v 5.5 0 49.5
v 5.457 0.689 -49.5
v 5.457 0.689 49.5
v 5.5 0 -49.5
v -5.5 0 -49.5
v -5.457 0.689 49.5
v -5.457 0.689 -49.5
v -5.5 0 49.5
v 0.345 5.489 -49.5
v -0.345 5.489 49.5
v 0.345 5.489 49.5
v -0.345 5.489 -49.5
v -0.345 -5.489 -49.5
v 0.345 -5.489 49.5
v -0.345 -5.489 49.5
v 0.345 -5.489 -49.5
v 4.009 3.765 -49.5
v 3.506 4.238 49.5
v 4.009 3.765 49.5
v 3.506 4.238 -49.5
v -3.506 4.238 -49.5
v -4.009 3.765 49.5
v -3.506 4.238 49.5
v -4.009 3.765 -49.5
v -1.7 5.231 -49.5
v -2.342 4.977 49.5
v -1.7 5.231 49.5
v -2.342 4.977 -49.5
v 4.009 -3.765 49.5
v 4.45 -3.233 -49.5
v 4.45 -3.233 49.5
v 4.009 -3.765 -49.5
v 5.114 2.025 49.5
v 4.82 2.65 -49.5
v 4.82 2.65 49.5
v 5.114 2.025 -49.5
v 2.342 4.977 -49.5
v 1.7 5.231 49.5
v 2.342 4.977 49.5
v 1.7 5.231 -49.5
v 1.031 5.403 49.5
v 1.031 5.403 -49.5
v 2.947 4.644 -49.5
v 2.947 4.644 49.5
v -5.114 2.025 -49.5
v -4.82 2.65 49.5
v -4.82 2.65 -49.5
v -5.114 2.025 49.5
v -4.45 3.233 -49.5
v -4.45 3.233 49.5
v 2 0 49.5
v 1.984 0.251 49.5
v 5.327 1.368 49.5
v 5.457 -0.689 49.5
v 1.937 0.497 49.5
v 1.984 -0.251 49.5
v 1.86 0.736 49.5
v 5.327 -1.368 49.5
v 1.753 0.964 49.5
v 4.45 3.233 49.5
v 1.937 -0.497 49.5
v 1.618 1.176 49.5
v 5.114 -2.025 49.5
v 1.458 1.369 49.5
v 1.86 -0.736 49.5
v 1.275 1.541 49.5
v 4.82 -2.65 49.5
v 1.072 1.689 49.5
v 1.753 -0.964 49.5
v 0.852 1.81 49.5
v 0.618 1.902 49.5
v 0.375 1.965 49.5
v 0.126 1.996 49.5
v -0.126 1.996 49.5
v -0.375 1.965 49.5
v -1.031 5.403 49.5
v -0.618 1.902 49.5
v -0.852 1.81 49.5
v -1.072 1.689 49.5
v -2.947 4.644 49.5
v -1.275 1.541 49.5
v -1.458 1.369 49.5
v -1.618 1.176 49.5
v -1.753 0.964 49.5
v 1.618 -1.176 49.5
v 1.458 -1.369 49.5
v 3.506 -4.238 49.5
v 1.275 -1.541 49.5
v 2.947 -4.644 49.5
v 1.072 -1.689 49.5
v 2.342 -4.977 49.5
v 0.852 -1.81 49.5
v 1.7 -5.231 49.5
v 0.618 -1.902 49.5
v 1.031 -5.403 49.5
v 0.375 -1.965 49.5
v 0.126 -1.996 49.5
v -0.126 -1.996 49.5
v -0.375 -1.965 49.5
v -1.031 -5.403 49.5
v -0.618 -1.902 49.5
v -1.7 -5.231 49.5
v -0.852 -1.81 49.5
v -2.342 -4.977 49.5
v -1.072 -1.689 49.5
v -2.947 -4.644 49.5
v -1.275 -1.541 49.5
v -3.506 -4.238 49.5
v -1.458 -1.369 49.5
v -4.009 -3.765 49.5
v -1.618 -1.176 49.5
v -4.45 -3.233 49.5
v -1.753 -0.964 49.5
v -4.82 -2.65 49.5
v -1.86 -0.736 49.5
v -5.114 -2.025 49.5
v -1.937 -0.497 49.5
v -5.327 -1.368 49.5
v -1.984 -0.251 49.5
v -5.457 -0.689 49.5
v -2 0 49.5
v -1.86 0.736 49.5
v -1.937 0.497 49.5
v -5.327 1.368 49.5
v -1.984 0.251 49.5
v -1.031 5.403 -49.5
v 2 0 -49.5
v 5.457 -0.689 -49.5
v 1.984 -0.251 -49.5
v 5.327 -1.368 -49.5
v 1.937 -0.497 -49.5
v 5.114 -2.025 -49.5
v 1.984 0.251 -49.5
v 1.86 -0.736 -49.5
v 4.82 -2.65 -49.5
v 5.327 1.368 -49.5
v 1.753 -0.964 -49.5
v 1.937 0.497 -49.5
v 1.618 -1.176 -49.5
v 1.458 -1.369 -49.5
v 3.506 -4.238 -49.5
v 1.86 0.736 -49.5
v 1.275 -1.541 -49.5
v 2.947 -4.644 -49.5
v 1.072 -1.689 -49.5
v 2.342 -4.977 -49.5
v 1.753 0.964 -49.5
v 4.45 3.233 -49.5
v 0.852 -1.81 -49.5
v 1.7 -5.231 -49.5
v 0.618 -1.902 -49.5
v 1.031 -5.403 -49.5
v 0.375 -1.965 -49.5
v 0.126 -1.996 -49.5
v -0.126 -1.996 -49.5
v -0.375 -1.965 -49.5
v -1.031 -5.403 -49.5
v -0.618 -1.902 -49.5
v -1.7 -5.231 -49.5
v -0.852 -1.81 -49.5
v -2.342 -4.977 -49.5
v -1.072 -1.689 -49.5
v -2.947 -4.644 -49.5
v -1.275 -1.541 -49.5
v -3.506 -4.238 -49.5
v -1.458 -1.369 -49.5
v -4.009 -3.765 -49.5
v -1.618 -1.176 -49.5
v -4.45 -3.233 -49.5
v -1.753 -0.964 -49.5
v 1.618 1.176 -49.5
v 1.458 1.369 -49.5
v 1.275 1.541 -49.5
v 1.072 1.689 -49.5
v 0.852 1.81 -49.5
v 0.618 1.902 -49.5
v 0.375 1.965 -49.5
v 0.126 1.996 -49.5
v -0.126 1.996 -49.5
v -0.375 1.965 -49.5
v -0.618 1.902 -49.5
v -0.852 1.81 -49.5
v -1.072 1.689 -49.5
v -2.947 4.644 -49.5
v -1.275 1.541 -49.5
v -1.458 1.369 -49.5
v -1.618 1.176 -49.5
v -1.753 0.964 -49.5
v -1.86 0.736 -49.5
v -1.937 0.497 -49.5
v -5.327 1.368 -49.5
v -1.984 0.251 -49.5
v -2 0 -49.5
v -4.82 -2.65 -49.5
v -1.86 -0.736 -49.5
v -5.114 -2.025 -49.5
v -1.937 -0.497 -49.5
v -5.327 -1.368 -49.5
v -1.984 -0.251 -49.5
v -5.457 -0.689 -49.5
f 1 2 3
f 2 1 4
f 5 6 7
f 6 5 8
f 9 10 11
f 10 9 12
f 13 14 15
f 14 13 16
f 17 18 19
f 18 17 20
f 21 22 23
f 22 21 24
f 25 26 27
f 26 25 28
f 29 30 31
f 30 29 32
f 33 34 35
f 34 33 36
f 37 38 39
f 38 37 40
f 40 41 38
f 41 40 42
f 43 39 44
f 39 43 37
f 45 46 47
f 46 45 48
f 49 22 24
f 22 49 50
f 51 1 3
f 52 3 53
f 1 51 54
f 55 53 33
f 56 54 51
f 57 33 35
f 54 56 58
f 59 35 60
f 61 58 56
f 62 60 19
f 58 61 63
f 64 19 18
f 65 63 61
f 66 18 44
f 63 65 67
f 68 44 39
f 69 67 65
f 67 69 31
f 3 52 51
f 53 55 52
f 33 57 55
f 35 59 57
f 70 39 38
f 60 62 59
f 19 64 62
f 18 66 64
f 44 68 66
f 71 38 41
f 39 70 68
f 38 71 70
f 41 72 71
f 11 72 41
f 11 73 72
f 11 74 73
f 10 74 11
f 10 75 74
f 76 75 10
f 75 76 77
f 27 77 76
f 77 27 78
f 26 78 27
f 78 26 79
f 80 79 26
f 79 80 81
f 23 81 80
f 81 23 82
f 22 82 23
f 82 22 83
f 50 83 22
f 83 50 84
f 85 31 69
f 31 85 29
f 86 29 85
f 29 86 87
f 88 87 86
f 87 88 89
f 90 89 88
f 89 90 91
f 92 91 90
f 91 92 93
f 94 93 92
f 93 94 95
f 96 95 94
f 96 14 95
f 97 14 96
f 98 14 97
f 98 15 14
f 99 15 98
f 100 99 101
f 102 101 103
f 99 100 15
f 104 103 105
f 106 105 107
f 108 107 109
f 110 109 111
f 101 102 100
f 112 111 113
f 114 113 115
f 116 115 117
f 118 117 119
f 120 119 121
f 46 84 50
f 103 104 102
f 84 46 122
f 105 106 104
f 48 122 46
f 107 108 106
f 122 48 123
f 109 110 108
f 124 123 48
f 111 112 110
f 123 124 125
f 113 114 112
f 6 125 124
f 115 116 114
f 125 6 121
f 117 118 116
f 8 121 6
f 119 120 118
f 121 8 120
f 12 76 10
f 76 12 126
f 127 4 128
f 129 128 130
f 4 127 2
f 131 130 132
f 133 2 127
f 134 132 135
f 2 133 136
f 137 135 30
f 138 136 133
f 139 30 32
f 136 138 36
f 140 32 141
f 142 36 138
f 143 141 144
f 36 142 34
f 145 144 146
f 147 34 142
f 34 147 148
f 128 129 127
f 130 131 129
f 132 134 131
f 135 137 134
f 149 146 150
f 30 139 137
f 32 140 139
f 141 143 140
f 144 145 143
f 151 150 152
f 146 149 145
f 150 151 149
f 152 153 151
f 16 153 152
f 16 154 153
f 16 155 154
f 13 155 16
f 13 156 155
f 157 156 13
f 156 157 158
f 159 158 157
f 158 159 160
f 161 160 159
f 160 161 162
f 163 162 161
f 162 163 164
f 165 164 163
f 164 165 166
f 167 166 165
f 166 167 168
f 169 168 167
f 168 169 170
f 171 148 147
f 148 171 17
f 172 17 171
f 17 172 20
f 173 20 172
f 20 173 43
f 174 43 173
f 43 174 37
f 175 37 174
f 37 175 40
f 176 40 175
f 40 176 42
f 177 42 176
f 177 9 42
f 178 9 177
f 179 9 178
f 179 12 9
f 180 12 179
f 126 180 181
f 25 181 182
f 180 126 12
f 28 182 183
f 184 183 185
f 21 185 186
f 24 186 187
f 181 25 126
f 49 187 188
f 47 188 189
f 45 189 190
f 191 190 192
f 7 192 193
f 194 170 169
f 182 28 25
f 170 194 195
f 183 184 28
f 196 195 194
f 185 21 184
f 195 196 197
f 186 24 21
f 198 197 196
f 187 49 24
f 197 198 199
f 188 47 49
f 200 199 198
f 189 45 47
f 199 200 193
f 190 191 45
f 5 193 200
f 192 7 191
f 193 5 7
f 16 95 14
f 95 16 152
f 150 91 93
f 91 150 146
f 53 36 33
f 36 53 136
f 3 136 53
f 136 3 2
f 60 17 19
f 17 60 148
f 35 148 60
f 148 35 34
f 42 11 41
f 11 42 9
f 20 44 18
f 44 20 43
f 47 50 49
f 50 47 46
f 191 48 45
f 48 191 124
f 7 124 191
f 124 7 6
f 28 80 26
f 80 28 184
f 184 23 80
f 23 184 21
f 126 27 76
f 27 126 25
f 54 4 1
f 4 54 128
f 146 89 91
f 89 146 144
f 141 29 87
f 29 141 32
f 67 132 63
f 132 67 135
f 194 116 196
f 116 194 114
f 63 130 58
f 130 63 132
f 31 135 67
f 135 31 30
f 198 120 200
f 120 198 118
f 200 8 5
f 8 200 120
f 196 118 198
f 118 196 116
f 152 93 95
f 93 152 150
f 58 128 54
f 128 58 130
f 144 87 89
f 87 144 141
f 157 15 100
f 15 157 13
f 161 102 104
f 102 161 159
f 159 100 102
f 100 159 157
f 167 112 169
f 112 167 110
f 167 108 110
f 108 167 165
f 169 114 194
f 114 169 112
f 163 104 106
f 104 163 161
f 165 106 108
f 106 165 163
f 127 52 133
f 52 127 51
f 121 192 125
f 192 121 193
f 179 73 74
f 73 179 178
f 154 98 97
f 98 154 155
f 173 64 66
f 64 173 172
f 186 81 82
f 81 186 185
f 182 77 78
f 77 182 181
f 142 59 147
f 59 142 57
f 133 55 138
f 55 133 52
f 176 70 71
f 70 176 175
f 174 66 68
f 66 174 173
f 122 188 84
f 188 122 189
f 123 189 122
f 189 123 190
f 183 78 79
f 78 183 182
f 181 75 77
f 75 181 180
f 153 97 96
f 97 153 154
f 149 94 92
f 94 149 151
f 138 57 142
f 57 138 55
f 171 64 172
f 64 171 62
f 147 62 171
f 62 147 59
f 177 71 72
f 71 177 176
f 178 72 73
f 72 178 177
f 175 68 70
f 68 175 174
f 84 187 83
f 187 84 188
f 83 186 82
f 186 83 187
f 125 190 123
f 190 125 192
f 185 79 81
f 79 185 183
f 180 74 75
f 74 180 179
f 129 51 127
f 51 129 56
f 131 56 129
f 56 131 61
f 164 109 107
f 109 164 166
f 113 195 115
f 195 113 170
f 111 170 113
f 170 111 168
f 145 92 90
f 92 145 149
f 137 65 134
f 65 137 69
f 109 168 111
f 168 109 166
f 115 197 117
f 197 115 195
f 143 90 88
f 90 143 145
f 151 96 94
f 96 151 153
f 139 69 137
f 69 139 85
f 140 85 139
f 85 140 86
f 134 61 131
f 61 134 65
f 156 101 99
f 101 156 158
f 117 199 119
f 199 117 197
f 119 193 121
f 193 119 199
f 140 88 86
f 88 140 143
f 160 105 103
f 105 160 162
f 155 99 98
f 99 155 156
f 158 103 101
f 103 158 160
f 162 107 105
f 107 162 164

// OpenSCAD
$fn = 50;


difference() {
	union() {
		translate(v = [0, 0, -49.5000000000]) {
			cylinder(h = 99, r = 5.5000000000);
		}
	}
	union() {
		translate(v = [0, 0, -100.0000000000]) {
			cylinder(h = 200, r = 2);
		}
	}
}
